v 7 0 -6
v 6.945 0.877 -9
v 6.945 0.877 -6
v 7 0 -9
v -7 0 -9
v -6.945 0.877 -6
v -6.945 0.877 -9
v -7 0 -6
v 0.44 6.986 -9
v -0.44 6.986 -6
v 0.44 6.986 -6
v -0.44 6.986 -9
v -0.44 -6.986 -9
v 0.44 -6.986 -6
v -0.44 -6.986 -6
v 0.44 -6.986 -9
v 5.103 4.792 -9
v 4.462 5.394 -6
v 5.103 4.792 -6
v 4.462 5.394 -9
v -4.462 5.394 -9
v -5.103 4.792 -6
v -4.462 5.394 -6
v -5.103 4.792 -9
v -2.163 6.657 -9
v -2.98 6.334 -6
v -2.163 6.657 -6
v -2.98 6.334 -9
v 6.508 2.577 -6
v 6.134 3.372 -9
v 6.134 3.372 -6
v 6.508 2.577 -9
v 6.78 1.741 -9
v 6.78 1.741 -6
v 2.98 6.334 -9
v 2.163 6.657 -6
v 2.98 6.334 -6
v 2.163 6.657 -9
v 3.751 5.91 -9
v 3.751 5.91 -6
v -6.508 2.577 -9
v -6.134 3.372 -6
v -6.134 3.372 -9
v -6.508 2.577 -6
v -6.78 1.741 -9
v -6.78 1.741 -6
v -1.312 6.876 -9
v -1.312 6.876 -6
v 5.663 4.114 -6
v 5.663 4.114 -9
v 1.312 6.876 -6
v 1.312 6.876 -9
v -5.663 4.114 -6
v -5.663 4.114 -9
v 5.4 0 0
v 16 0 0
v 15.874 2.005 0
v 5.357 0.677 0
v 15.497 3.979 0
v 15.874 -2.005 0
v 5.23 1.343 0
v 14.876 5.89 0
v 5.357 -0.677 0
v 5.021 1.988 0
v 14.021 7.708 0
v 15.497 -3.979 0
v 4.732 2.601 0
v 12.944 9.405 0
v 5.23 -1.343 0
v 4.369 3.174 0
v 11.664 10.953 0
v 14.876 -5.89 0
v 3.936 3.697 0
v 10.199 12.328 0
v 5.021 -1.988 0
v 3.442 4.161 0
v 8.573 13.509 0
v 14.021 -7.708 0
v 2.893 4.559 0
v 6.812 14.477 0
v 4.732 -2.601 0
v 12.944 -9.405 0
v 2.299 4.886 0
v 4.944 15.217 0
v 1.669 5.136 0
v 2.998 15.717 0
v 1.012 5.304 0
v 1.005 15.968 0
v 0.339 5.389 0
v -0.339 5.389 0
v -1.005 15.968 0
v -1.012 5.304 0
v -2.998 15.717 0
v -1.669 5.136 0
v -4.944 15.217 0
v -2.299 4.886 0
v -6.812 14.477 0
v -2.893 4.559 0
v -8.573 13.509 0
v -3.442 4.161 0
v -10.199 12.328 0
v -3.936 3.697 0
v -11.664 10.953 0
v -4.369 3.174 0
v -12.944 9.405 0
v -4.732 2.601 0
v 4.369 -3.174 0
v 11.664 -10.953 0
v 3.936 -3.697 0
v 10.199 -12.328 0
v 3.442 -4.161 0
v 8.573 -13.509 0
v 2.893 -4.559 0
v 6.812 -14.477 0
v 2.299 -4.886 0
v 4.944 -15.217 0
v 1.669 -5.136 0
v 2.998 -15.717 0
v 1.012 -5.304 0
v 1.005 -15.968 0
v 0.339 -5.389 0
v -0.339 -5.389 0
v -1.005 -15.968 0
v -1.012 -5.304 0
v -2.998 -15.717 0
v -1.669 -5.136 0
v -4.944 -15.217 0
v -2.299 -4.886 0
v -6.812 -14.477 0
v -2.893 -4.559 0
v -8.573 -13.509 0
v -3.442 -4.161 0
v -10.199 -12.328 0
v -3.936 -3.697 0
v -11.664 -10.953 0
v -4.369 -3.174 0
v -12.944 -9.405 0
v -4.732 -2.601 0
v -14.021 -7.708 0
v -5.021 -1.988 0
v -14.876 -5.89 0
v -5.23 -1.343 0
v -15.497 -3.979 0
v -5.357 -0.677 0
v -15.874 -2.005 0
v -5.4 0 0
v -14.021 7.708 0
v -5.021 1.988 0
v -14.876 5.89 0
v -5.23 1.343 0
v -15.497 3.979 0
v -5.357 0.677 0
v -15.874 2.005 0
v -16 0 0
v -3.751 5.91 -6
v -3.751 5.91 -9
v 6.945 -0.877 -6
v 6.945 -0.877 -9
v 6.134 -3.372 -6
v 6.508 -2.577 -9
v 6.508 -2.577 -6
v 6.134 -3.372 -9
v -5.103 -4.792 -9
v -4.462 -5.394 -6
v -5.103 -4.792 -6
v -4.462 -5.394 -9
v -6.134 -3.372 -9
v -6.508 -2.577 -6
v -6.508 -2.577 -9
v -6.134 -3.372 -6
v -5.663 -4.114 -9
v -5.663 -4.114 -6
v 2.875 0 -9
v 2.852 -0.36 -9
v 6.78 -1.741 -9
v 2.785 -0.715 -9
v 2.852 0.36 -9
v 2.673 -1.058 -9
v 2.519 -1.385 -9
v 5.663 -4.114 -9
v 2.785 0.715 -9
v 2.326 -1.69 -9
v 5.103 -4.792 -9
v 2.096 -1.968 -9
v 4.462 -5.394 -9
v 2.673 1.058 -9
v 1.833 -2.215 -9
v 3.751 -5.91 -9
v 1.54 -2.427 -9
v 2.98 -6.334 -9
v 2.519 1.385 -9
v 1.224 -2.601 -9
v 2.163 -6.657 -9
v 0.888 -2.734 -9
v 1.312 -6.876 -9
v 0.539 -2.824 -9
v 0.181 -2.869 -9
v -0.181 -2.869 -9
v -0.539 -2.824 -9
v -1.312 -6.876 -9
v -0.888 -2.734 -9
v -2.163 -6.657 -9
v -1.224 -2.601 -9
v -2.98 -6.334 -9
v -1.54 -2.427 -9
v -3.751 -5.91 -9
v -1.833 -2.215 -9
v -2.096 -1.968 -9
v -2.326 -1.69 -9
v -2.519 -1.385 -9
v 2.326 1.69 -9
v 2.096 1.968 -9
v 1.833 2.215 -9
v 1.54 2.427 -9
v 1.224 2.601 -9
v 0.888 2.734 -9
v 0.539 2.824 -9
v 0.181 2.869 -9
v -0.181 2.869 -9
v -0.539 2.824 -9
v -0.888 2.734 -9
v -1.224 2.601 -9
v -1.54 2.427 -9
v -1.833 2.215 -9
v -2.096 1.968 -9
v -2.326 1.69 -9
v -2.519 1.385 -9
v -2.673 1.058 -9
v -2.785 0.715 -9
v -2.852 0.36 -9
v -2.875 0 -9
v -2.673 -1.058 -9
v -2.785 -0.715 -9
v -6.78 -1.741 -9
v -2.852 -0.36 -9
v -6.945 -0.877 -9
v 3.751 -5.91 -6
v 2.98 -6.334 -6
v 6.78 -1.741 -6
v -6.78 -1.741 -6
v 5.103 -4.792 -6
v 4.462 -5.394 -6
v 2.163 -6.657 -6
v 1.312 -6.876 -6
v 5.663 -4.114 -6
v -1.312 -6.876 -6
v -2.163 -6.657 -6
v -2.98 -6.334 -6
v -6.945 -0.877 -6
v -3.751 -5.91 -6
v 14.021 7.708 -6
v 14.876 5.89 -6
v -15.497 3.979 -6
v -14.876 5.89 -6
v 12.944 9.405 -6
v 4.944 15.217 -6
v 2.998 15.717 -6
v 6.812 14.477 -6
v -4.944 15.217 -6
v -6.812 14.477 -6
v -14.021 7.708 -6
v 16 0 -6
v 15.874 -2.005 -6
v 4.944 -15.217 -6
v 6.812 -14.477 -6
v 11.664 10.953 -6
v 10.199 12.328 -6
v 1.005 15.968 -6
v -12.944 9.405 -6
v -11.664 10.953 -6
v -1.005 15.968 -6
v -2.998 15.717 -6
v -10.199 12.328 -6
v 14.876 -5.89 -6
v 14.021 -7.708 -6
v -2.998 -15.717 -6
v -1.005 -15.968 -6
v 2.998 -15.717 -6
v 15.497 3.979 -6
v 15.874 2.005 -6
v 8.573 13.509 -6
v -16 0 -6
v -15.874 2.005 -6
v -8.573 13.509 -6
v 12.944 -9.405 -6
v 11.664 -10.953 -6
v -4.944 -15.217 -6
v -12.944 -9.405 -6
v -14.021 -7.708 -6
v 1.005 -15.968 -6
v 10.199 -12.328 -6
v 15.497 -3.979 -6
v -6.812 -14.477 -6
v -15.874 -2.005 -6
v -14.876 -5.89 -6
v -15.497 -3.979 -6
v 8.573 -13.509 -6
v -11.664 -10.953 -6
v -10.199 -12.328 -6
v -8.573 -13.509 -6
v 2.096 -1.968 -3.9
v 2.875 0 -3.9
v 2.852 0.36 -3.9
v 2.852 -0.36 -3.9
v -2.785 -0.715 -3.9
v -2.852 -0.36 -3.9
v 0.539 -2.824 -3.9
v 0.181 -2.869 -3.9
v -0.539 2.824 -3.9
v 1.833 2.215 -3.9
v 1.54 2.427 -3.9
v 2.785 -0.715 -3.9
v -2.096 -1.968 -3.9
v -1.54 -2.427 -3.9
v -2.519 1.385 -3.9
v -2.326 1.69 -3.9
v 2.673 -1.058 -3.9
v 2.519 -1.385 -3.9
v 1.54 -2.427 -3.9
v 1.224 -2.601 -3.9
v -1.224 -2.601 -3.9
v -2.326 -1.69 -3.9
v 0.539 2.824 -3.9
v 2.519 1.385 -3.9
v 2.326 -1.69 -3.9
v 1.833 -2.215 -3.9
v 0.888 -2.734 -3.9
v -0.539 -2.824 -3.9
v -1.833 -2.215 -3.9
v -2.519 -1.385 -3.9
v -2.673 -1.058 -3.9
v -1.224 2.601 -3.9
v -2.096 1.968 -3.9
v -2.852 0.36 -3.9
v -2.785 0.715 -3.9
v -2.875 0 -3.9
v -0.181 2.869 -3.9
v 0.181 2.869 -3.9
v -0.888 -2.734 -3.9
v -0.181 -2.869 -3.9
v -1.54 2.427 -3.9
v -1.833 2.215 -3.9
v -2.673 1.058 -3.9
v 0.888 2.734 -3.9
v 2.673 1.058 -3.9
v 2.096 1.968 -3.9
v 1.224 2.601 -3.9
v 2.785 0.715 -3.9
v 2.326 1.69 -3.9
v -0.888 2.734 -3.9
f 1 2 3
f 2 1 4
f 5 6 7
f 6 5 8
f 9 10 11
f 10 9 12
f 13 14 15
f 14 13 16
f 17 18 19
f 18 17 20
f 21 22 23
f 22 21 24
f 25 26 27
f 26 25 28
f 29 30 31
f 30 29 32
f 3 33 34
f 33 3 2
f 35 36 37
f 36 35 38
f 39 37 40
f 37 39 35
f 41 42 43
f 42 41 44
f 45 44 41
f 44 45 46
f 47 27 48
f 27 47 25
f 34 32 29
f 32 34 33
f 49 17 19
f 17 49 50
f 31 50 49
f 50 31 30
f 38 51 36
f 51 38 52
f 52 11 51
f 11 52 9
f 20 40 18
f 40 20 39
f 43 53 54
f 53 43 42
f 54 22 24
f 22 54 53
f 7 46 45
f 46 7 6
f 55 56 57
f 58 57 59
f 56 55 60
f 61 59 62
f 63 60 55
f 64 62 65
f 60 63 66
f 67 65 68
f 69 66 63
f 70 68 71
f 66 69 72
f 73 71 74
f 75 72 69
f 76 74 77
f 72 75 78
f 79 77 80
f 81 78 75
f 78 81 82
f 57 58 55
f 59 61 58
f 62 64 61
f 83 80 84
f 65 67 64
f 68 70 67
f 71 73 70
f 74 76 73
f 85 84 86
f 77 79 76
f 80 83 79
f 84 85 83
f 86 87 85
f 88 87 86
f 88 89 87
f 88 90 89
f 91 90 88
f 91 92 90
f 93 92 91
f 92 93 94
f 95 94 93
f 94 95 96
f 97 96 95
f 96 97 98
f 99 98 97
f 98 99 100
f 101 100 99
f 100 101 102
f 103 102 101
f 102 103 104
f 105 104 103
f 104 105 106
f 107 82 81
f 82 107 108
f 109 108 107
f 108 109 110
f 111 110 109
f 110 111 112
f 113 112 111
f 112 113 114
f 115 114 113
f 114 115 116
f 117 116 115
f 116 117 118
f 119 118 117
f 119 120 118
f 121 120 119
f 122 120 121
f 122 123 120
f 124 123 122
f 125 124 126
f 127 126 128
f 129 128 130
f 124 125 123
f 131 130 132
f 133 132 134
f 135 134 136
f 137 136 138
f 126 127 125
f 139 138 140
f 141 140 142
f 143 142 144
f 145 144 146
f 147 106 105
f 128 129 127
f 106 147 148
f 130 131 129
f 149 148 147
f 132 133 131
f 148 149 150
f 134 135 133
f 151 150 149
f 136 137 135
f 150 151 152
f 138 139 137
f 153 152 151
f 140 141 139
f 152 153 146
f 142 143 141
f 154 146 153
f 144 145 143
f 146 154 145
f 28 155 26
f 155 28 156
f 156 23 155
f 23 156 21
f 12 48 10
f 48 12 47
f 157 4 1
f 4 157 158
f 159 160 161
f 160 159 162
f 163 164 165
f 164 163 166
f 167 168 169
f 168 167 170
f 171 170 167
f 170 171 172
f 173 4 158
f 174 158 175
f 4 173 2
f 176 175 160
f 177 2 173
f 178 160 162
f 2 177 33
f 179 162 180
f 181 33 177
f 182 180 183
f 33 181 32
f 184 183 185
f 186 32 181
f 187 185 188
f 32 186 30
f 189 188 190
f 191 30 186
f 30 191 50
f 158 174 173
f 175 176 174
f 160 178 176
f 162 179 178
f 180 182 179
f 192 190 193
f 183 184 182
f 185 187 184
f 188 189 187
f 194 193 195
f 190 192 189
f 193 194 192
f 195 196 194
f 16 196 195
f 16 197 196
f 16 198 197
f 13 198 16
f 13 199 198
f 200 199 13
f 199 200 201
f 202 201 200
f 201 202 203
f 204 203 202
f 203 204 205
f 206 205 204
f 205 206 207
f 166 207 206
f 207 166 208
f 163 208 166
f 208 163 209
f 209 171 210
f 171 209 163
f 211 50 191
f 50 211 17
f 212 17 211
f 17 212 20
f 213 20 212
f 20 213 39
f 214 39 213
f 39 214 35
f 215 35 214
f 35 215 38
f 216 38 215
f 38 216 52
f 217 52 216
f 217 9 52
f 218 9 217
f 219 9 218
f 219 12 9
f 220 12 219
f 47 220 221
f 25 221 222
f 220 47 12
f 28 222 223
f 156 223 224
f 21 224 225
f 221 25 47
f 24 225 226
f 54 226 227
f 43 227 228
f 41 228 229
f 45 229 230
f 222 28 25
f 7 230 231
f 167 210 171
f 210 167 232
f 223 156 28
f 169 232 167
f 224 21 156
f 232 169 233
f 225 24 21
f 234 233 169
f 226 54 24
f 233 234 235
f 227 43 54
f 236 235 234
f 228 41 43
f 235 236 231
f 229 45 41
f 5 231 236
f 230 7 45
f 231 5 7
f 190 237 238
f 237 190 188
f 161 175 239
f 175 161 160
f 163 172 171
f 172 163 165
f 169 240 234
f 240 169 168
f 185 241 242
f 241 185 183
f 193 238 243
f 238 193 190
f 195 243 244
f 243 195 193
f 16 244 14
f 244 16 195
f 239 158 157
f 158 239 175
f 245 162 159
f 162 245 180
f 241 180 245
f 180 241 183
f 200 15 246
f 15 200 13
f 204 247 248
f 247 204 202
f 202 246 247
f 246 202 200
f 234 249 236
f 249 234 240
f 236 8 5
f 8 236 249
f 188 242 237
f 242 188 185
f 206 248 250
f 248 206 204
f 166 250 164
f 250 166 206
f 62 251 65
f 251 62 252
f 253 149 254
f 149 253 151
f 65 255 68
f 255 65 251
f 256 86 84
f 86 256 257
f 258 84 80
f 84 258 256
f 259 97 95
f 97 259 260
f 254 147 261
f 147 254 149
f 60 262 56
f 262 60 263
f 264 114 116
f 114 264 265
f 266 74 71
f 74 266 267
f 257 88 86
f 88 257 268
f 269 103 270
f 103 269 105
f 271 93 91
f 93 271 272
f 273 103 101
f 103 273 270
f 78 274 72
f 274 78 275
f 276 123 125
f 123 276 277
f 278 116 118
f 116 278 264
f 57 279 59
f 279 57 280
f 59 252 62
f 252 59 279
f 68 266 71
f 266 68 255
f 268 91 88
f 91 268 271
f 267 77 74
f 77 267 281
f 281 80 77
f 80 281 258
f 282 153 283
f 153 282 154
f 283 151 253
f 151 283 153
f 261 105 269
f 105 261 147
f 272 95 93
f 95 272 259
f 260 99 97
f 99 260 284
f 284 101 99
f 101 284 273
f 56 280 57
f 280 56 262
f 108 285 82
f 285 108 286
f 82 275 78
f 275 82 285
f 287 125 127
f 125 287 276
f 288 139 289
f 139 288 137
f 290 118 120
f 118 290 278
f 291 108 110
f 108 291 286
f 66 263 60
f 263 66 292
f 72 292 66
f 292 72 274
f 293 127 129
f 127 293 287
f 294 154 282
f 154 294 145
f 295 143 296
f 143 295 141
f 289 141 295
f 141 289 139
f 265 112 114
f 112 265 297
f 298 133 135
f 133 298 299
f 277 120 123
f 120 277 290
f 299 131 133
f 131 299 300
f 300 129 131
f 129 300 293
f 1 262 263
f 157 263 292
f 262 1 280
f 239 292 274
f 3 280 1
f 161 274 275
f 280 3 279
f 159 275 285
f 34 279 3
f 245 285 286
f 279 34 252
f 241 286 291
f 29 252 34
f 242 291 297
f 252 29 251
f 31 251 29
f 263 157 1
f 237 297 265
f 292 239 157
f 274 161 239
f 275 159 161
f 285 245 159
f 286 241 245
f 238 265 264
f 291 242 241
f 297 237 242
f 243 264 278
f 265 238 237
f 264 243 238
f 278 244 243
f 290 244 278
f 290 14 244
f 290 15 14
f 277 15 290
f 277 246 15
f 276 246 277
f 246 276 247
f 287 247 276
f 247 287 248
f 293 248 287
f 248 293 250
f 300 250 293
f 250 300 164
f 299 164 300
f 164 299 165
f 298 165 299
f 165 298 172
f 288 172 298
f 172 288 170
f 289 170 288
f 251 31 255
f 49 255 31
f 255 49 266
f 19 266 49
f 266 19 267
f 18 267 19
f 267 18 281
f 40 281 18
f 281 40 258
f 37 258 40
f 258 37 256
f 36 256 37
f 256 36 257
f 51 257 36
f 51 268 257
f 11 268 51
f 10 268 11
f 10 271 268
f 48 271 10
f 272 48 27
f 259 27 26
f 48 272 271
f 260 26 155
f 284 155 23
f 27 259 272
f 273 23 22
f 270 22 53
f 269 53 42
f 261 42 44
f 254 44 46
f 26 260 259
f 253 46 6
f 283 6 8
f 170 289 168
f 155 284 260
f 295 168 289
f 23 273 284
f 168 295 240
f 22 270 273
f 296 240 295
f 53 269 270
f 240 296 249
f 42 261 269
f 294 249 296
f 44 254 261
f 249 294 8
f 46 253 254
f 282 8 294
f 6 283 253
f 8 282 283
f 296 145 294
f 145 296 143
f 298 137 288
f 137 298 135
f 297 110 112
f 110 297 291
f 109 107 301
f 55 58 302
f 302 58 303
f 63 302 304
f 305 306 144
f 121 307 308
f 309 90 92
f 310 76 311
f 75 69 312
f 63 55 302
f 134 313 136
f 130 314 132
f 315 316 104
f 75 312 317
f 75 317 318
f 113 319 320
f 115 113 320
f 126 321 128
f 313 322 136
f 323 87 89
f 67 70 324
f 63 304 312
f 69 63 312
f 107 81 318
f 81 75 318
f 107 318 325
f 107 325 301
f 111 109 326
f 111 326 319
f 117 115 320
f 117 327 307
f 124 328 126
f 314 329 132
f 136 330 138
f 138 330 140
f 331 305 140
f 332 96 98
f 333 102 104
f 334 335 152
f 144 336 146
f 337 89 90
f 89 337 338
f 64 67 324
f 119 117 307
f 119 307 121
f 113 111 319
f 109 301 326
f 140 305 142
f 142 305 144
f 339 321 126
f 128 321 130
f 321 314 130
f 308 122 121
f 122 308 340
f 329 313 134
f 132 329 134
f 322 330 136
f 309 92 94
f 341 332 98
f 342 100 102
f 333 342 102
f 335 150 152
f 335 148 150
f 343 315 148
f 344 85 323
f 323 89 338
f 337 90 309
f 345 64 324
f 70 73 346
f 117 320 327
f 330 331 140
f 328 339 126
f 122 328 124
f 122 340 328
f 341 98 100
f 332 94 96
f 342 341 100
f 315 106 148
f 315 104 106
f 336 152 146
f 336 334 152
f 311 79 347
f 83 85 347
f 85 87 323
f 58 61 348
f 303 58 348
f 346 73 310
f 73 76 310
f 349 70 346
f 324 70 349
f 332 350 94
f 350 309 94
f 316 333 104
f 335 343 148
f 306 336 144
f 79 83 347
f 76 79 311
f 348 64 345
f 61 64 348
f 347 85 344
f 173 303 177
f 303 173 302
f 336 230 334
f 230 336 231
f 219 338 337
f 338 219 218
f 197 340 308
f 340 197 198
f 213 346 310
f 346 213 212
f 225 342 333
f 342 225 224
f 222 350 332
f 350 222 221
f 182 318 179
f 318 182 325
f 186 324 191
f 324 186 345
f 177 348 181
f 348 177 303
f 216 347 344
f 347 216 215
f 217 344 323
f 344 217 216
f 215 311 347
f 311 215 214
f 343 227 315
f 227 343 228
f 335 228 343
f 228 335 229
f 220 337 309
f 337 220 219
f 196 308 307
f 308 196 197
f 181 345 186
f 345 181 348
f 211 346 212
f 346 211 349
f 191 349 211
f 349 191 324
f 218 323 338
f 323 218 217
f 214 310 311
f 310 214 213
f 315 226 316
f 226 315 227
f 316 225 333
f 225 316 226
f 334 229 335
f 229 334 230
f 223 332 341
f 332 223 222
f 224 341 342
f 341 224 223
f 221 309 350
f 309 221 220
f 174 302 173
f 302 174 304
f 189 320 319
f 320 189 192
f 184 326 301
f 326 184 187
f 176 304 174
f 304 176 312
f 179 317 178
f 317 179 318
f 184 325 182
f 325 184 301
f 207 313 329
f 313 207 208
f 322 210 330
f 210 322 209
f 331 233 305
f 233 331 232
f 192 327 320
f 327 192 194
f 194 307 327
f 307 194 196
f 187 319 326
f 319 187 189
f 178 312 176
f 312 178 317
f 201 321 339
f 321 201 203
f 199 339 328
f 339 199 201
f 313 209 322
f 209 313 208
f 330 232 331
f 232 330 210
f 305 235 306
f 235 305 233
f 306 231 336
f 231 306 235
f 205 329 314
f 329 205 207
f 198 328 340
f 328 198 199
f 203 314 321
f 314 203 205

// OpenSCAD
$fn = 50;


difference() {
	union() {
		translate(v = [0, 0, -9.0000000000]) {
			cylinder(h = 9, r = 7.0000000000);
		}
		translate(v = [0, 0, -6.0000000000]) {
			cylinder(h = 6, r = 16.0000000000);
		}
	}
	union() {
		translate(v = [0, 0, 0]) {
			rotate(a = [0, 0, 0]) {
				difference() {
					union() {
						#translate(v = [0, 0, -9.0000000000]) {
							cylinder(h = 9, r = 2.6000000000);
						}
						#translate(v = [0, 0, -3.9000000000]) {
							cylinder(h = 3.9000000000, r1 = 2.8750000000, r2 = 5.4000000000);
						}
						#translate(v = [0, 0, -9.0000000000]) {
							cylinder(h = 9, r = 2.8750000000);
						}
						#translate(v = [0, 0, -9.0000000000]) {
							cylinder(h = 9, r = 2.6000000000);
						}
					}
					union();
				}
			}
		}
	}
}
